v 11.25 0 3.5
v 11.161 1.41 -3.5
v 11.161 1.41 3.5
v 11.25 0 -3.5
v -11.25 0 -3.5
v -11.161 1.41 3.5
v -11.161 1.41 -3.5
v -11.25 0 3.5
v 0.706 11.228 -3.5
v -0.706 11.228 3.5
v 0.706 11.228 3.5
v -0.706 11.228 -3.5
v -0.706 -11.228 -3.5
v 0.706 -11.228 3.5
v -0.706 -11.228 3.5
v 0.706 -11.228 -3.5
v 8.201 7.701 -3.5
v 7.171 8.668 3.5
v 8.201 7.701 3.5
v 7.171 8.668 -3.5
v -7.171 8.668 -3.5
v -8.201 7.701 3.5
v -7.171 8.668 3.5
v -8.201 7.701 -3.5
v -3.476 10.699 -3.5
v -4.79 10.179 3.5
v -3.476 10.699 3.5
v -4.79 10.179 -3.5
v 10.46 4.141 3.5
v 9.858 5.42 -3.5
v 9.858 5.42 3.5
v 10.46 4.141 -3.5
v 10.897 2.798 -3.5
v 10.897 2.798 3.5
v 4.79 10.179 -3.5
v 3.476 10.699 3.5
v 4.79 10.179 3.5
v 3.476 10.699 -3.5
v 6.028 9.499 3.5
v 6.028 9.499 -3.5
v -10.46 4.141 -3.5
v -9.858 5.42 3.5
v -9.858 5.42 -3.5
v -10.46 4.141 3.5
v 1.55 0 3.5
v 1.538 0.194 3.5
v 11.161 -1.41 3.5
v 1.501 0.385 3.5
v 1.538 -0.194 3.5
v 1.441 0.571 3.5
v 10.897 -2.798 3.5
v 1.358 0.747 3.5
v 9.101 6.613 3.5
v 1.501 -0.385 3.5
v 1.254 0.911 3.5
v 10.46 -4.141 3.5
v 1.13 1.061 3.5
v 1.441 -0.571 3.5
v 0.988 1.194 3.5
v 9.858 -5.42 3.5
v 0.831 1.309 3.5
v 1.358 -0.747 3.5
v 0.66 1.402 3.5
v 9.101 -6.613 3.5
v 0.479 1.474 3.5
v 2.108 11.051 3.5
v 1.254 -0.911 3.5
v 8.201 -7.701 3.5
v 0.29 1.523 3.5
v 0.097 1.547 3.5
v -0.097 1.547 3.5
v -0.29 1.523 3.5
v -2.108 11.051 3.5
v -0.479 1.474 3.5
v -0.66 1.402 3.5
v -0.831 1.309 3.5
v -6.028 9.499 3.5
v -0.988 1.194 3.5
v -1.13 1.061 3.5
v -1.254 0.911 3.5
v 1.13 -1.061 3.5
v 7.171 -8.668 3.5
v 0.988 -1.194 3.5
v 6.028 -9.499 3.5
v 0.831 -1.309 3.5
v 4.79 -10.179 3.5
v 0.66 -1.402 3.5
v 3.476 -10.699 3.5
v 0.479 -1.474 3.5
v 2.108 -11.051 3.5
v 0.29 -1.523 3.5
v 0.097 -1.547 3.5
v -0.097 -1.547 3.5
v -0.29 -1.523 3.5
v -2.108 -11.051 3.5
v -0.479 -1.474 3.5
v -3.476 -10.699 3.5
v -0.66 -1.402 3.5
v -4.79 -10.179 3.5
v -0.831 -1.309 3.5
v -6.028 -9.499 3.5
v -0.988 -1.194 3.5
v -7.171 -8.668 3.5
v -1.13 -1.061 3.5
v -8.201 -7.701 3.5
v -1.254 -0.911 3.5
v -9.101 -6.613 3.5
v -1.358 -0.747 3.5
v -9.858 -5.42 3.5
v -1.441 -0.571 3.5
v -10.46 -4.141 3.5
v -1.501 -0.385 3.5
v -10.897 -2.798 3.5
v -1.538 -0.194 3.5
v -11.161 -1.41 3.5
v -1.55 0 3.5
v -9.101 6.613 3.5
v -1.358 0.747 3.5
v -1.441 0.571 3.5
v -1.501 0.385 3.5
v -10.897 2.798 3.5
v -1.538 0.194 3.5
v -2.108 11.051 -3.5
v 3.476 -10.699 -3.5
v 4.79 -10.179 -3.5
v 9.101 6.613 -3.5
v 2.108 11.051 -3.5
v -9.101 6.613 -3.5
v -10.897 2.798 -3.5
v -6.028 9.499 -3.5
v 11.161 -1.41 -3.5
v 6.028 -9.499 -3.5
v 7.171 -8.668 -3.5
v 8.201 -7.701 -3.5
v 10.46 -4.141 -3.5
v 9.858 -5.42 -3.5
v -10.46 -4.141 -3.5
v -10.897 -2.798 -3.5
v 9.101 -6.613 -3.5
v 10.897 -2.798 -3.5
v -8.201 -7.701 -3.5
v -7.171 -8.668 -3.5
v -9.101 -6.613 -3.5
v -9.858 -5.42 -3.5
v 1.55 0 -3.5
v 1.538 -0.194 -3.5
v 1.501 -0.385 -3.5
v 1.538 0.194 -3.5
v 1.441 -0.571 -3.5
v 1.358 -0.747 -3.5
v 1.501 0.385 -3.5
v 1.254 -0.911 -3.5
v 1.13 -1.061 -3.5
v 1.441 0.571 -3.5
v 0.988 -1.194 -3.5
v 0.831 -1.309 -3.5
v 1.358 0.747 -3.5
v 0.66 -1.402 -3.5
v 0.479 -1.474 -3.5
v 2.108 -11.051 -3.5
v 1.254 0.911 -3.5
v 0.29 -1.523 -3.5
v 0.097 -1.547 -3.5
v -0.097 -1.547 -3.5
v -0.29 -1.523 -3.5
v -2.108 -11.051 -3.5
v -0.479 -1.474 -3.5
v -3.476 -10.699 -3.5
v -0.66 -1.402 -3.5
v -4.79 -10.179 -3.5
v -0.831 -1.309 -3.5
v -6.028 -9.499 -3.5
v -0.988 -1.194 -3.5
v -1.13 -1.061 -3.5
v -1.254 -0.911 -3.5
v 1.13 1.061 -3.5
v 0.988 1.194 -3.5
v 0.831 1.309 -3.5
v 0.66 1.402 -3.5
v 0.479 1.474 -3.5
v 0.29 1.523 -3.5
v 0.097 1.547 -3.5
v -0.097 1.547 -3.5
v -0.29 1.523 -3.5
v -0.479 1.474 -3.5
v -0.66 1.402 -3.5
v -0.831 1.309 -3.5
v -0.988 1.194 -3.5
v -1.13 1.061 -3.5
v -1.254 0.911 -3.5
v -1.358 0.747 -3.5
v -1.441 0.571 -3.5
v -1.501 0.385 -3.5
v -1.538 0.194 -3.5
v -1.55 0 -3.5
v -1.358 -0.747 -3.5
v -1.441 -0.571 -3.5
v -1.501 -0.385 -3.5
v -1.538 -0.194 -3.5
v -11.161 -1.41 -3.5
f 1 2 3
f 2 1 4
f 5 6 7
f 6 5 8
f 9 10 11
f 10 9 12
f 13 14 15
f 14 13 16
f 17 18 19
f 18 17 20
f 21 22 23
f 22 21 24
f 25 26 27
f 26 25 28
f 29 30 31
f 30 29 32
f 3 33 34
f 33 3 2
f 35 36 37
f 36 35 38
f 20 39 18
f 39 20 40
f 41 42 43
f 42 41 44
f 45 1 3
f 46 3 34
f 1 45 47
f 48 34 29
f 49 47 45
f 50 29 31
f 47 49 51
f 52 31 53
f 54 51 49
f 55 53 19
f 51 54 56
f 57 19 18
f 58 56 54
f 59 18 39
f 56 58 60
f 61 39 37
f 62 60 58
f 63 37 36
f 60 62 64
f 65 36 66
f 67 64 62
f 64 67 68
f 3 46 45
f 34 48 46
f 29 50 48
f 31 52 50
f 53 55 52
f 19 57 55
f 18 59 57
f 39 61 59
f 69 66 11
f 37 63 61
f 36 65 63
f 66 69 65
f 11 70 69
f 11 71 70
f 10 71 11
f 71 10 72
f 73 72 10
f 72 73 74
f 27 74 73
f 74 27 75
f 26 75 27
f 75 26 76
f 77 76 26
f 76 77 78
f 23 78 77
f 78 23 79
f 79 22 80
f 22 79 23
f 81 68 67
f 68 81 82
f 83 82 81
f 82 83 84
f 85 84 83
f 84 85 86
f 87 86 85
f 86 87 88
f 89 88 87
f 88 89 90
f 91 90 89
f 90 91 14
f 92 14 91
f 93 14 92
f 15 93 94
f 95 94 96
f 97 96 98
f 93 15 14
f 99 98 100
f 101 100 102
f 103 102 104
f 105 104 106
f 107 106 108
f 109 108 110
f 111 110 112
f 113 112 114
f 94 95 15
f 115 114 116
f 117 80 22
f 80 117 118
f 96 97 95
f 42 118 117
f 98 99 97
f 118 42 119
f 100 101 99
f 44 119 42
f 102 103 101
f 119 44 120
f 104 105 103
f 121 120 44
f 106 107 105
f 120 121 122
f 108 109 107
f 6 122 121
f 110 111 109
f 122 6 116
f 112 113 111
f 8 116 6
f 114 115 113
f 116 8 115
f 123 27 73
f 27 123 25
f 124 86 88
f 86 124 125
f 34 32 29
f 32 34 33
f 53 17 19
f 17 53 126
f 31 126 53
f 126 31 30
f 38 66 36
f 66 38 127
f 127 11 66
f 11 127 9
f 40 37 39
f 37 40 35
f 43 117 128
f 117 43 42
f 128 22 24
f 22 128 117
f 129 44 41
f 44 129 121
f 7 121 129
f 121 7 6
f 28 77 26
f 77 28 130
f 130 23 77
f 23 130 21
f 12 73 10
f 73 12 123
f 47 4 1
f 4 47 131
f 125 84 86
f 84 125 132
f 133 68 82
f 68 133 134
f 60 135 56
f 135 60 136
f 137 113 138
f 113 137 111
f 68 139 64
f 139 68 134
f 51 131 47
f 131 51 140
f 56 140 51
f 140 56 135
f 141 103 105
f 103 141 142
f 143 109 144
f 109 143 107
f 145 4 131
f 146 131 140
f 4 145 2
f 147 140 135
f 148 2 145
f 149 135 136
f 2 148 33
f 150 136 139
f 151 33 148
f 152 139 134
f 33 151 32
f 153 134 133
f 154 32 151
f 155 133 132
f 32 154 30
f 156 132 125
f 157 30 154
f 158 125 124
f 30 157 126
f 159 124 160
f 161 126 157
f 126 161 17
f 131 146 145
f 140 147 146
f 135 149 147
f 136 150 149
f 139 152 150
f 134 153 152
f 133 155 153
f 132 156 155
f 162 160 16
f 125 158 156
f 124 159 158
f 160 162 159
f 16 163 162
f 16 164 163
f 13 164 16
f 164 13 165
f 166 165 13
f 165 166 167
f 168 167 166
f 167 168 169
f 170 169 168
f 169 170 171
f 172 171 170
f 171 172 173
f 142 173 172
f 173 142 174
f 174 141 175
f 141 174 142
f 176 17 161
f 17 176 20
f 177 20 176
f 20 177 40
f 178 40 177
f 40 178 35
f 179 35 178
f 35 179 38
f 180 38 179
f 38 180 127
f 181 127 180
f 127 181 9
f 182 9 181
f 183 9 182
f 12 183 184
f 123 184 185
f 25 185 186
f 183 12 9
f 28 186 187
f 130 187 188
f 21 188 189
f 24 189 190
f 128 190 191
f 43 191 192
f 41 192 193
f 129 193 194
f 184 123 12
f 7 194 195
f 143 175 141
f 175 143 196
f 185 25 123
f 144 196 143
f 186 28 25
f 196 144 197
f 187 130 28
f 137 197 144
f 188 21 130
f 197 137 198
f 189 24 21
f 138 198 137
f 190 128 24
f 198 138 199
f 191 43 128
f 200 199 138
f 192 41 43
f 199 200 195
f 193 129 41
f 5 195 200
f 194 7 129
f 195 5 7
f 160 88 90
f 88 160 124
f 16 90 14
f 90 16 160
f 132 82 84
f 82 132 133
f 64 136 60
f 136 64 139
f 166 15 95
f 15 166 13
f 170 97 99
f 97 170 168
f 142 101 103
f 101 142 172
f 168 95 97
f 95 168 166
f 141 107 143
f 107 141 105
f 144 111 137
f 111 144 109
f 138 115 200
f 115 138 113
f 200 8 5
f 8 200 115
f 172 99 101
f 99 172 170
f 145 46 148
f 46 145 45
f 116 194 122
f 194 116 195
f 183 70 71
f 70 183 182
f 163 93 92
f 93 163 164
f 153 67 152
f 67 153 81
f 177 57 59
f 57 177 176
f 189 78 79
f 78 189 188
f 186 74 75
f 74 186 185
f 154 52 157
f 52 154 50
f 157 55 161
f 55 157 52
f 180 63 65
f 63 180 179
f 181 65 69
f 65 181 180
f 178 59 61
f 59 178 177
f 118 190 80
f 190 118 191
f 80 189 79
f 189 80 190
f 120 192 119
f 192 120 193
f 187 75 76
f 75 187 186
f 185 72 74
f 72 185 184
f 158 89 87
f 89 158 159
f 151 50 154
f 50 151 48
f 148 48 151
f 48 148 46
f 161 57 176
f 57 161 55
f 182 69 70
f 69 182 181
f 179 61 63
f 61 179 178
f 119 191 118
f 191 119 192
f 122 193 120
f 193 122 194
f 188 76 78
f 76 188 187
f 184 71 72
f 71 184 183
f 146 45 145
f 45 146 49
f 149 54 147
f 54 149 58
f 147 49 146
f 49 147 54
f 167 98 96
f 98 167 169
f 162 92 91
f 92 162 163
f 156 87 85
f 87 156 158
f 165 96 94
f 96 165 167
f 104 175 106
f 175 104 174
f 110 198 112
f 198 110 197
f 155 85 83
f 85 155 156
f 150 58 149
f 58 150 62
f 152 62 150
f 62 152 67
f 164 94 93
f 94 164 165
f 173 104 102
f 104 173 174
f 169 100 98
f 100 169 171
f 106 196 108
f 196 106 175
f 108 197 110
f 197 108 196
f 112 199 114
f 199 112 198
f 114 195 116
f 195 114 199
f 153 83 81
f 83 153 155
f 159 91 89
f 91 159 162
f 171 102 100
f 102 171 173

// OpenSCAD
$fn = 50;


difference() {
	union() {
		translate(v = [0, 0, -3.5000000000]) {
			cylinder(h = 7, r = 11.2500000000);
		}
	}
	union() {
		translate(v = [0, 0, -100.0000000000]) {
			cylinder(h = 200, r = 1.5500000000);
		}
	}
}
